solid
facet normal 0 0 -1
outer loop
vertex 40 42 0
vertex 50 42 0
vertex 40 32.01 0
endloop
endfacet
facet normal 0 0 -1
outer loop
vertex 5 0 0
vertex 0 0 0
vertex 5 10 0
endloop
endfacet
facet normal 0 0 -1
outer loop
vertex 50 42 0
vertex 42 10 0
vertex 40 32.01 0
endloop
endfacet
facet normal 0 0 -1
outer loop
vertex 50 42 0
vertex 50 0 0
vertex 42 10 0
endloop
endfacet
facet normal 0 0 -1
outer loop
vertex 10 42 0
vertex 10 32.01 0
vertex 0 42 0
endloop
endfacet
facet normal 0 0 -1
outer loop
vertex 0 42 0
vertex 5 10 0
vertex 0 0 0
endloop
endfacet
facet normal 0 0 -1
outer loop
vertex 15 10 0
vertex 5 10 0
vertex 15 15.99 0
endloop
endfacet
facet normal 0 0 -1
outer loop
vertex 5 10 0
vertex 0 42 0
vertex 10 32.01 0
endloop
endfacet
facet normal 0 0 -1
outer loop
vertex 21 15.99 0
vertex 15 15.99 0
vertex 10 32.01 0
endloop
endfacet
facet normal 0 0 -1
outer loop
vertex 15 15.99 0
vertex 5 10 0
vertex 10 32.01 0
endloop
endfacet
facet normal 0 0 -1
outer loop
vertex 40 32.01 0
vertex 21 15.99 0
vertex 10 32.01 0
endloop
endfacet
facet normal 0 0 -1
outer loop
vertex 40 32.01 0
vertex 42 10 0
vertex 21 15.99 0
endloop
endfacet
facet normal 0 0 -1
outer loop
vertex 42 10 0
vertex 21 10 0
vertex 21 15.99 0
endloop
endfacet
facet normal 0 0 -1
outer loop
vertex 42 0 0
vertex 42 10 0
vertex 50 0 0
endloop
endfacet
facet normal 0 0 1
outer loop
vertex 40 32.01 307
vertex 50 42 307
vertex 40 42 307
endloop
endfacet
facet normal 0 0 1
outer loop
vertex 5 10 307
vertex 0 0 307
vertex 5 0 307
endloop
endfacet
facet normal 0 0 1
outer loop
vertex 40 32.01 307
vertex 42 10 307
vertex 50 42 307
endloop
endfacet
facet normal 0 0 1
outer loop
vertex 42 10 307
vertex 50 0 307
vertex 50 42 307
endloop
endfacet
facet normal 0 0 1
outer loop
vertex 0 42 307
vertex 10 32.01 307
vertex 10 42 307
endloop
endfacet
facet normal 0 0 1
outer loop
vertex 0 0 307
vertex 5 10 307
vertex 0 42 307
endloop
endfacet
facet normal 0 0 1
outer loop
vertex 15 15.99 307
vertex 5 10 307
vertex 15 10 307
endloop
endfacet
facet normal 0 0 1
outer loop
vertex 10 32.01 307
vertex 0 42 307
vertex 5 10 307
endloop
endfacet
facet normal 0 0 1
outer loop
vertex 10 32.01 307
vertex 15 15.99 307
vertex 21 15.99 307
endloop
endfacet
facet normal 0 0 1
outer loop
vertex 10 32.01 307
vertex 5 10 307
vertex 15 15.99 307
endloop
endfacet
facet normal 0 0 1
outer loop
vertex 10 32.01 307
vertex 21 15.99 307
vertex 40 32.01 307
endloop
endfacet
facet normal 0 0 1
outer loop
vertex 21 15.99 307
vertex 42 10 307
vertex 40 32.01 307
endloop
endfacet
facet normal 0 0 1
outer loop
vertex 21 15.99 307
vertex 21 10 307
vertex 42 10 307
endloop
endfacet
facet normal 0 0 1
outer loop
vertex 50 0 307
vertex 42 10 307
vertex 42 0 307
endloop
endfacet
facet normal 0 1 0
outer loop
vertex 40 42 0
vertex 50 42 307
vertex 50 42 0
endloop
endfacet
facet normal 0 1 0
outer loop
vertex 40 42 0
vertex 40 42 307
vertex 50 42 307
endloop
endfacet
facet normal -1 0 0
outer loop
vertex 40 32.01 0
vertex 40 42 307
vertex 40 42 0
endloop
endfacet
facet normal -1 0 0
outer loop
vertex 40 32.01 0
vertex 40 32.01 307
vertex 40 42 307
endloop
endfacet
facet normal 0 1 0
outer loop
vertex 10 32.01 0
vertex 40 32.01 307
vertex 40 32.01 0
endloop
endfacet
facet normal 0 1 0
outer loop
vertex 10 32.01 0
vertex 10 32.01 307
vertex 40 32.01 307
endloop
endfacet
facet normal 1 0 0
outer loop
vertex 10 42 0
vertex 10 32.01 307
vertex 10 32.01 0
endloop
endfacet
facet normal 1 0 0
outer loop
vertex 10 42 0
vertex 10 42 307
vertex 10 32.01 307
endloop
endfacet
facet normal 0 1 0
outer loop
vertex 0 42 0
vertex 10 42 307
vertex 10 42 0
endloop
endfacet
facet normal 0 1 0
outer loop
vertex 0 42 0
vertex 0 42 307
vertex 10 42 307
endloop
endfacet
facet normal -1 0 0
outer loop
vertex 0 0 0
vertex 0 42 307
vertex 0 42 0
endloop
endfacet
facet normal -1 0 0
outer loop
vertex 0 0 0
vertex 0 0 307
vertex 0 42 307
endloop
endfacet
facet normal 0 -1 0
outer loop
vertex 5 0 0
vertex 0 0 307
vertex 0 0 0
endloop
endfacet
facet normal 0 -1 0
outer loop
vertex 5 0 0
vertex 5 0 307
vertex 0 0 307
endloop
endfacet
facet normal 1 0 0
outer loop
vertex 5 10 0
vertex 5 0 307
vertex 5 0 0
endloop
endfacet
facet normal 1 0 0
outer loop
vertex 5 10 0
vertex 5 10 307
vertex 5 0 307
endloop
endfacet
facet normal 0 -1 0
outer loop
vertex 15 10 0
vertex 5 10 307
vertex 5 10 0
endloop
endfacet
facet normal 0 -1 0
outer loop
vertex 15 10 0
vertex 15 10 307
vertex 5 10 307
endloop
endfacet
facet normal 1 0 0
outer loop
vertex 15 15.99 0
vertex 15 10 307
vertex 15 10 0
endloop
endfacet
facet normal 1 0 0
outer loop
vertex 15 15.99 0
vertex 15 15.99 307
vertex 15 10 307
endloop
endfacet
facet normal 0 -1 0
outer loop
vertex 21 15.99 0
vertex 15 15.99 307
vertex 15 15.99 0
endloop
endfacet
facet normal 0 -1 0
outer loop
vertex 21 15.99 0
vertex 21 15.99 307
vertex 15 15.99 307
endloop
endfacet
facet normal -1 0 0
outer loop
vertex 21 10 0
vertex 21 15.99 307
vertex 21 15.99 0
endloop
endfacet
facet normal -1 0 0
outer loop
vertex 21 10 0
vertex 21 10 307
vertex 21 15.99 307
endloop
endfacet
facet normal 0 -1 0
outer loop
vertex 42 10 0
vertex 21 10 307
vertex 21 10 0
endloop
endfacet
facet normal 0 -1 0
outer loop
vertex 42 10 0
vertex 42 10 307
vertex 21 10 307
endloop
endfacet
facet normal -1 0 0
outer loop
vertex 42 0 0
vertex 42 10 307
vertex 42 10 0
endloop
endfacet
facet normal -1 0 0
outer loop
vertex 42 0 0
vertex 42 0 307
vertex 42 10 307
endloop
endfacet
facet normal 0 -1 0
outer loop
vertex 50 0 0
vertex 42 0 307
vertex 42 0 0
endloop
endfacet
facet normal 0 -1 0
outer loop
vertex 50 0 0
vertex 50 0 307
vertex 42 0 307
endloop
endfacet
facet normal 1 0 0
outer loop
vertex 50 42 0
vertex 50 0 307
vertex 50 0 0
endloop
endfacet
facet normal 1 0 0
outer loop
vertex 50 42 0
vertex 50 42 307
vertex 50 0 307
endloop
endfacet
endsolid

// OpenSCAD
$fn = $preview ? 32: 128;


total_length=307;
total_thickness=50;
total_height=42; 

linear_extrude(height=total_length){
    difference(){
        square([total_thickness, total_height]);
        translate([15,9.99,0])square([6,6]);     //bottom rail slider
        translate([5,-.01,0])square([37,10.01]); //bottom
        translate([10,32.01,0])square([30,10]);  //top holder 
    }
}
